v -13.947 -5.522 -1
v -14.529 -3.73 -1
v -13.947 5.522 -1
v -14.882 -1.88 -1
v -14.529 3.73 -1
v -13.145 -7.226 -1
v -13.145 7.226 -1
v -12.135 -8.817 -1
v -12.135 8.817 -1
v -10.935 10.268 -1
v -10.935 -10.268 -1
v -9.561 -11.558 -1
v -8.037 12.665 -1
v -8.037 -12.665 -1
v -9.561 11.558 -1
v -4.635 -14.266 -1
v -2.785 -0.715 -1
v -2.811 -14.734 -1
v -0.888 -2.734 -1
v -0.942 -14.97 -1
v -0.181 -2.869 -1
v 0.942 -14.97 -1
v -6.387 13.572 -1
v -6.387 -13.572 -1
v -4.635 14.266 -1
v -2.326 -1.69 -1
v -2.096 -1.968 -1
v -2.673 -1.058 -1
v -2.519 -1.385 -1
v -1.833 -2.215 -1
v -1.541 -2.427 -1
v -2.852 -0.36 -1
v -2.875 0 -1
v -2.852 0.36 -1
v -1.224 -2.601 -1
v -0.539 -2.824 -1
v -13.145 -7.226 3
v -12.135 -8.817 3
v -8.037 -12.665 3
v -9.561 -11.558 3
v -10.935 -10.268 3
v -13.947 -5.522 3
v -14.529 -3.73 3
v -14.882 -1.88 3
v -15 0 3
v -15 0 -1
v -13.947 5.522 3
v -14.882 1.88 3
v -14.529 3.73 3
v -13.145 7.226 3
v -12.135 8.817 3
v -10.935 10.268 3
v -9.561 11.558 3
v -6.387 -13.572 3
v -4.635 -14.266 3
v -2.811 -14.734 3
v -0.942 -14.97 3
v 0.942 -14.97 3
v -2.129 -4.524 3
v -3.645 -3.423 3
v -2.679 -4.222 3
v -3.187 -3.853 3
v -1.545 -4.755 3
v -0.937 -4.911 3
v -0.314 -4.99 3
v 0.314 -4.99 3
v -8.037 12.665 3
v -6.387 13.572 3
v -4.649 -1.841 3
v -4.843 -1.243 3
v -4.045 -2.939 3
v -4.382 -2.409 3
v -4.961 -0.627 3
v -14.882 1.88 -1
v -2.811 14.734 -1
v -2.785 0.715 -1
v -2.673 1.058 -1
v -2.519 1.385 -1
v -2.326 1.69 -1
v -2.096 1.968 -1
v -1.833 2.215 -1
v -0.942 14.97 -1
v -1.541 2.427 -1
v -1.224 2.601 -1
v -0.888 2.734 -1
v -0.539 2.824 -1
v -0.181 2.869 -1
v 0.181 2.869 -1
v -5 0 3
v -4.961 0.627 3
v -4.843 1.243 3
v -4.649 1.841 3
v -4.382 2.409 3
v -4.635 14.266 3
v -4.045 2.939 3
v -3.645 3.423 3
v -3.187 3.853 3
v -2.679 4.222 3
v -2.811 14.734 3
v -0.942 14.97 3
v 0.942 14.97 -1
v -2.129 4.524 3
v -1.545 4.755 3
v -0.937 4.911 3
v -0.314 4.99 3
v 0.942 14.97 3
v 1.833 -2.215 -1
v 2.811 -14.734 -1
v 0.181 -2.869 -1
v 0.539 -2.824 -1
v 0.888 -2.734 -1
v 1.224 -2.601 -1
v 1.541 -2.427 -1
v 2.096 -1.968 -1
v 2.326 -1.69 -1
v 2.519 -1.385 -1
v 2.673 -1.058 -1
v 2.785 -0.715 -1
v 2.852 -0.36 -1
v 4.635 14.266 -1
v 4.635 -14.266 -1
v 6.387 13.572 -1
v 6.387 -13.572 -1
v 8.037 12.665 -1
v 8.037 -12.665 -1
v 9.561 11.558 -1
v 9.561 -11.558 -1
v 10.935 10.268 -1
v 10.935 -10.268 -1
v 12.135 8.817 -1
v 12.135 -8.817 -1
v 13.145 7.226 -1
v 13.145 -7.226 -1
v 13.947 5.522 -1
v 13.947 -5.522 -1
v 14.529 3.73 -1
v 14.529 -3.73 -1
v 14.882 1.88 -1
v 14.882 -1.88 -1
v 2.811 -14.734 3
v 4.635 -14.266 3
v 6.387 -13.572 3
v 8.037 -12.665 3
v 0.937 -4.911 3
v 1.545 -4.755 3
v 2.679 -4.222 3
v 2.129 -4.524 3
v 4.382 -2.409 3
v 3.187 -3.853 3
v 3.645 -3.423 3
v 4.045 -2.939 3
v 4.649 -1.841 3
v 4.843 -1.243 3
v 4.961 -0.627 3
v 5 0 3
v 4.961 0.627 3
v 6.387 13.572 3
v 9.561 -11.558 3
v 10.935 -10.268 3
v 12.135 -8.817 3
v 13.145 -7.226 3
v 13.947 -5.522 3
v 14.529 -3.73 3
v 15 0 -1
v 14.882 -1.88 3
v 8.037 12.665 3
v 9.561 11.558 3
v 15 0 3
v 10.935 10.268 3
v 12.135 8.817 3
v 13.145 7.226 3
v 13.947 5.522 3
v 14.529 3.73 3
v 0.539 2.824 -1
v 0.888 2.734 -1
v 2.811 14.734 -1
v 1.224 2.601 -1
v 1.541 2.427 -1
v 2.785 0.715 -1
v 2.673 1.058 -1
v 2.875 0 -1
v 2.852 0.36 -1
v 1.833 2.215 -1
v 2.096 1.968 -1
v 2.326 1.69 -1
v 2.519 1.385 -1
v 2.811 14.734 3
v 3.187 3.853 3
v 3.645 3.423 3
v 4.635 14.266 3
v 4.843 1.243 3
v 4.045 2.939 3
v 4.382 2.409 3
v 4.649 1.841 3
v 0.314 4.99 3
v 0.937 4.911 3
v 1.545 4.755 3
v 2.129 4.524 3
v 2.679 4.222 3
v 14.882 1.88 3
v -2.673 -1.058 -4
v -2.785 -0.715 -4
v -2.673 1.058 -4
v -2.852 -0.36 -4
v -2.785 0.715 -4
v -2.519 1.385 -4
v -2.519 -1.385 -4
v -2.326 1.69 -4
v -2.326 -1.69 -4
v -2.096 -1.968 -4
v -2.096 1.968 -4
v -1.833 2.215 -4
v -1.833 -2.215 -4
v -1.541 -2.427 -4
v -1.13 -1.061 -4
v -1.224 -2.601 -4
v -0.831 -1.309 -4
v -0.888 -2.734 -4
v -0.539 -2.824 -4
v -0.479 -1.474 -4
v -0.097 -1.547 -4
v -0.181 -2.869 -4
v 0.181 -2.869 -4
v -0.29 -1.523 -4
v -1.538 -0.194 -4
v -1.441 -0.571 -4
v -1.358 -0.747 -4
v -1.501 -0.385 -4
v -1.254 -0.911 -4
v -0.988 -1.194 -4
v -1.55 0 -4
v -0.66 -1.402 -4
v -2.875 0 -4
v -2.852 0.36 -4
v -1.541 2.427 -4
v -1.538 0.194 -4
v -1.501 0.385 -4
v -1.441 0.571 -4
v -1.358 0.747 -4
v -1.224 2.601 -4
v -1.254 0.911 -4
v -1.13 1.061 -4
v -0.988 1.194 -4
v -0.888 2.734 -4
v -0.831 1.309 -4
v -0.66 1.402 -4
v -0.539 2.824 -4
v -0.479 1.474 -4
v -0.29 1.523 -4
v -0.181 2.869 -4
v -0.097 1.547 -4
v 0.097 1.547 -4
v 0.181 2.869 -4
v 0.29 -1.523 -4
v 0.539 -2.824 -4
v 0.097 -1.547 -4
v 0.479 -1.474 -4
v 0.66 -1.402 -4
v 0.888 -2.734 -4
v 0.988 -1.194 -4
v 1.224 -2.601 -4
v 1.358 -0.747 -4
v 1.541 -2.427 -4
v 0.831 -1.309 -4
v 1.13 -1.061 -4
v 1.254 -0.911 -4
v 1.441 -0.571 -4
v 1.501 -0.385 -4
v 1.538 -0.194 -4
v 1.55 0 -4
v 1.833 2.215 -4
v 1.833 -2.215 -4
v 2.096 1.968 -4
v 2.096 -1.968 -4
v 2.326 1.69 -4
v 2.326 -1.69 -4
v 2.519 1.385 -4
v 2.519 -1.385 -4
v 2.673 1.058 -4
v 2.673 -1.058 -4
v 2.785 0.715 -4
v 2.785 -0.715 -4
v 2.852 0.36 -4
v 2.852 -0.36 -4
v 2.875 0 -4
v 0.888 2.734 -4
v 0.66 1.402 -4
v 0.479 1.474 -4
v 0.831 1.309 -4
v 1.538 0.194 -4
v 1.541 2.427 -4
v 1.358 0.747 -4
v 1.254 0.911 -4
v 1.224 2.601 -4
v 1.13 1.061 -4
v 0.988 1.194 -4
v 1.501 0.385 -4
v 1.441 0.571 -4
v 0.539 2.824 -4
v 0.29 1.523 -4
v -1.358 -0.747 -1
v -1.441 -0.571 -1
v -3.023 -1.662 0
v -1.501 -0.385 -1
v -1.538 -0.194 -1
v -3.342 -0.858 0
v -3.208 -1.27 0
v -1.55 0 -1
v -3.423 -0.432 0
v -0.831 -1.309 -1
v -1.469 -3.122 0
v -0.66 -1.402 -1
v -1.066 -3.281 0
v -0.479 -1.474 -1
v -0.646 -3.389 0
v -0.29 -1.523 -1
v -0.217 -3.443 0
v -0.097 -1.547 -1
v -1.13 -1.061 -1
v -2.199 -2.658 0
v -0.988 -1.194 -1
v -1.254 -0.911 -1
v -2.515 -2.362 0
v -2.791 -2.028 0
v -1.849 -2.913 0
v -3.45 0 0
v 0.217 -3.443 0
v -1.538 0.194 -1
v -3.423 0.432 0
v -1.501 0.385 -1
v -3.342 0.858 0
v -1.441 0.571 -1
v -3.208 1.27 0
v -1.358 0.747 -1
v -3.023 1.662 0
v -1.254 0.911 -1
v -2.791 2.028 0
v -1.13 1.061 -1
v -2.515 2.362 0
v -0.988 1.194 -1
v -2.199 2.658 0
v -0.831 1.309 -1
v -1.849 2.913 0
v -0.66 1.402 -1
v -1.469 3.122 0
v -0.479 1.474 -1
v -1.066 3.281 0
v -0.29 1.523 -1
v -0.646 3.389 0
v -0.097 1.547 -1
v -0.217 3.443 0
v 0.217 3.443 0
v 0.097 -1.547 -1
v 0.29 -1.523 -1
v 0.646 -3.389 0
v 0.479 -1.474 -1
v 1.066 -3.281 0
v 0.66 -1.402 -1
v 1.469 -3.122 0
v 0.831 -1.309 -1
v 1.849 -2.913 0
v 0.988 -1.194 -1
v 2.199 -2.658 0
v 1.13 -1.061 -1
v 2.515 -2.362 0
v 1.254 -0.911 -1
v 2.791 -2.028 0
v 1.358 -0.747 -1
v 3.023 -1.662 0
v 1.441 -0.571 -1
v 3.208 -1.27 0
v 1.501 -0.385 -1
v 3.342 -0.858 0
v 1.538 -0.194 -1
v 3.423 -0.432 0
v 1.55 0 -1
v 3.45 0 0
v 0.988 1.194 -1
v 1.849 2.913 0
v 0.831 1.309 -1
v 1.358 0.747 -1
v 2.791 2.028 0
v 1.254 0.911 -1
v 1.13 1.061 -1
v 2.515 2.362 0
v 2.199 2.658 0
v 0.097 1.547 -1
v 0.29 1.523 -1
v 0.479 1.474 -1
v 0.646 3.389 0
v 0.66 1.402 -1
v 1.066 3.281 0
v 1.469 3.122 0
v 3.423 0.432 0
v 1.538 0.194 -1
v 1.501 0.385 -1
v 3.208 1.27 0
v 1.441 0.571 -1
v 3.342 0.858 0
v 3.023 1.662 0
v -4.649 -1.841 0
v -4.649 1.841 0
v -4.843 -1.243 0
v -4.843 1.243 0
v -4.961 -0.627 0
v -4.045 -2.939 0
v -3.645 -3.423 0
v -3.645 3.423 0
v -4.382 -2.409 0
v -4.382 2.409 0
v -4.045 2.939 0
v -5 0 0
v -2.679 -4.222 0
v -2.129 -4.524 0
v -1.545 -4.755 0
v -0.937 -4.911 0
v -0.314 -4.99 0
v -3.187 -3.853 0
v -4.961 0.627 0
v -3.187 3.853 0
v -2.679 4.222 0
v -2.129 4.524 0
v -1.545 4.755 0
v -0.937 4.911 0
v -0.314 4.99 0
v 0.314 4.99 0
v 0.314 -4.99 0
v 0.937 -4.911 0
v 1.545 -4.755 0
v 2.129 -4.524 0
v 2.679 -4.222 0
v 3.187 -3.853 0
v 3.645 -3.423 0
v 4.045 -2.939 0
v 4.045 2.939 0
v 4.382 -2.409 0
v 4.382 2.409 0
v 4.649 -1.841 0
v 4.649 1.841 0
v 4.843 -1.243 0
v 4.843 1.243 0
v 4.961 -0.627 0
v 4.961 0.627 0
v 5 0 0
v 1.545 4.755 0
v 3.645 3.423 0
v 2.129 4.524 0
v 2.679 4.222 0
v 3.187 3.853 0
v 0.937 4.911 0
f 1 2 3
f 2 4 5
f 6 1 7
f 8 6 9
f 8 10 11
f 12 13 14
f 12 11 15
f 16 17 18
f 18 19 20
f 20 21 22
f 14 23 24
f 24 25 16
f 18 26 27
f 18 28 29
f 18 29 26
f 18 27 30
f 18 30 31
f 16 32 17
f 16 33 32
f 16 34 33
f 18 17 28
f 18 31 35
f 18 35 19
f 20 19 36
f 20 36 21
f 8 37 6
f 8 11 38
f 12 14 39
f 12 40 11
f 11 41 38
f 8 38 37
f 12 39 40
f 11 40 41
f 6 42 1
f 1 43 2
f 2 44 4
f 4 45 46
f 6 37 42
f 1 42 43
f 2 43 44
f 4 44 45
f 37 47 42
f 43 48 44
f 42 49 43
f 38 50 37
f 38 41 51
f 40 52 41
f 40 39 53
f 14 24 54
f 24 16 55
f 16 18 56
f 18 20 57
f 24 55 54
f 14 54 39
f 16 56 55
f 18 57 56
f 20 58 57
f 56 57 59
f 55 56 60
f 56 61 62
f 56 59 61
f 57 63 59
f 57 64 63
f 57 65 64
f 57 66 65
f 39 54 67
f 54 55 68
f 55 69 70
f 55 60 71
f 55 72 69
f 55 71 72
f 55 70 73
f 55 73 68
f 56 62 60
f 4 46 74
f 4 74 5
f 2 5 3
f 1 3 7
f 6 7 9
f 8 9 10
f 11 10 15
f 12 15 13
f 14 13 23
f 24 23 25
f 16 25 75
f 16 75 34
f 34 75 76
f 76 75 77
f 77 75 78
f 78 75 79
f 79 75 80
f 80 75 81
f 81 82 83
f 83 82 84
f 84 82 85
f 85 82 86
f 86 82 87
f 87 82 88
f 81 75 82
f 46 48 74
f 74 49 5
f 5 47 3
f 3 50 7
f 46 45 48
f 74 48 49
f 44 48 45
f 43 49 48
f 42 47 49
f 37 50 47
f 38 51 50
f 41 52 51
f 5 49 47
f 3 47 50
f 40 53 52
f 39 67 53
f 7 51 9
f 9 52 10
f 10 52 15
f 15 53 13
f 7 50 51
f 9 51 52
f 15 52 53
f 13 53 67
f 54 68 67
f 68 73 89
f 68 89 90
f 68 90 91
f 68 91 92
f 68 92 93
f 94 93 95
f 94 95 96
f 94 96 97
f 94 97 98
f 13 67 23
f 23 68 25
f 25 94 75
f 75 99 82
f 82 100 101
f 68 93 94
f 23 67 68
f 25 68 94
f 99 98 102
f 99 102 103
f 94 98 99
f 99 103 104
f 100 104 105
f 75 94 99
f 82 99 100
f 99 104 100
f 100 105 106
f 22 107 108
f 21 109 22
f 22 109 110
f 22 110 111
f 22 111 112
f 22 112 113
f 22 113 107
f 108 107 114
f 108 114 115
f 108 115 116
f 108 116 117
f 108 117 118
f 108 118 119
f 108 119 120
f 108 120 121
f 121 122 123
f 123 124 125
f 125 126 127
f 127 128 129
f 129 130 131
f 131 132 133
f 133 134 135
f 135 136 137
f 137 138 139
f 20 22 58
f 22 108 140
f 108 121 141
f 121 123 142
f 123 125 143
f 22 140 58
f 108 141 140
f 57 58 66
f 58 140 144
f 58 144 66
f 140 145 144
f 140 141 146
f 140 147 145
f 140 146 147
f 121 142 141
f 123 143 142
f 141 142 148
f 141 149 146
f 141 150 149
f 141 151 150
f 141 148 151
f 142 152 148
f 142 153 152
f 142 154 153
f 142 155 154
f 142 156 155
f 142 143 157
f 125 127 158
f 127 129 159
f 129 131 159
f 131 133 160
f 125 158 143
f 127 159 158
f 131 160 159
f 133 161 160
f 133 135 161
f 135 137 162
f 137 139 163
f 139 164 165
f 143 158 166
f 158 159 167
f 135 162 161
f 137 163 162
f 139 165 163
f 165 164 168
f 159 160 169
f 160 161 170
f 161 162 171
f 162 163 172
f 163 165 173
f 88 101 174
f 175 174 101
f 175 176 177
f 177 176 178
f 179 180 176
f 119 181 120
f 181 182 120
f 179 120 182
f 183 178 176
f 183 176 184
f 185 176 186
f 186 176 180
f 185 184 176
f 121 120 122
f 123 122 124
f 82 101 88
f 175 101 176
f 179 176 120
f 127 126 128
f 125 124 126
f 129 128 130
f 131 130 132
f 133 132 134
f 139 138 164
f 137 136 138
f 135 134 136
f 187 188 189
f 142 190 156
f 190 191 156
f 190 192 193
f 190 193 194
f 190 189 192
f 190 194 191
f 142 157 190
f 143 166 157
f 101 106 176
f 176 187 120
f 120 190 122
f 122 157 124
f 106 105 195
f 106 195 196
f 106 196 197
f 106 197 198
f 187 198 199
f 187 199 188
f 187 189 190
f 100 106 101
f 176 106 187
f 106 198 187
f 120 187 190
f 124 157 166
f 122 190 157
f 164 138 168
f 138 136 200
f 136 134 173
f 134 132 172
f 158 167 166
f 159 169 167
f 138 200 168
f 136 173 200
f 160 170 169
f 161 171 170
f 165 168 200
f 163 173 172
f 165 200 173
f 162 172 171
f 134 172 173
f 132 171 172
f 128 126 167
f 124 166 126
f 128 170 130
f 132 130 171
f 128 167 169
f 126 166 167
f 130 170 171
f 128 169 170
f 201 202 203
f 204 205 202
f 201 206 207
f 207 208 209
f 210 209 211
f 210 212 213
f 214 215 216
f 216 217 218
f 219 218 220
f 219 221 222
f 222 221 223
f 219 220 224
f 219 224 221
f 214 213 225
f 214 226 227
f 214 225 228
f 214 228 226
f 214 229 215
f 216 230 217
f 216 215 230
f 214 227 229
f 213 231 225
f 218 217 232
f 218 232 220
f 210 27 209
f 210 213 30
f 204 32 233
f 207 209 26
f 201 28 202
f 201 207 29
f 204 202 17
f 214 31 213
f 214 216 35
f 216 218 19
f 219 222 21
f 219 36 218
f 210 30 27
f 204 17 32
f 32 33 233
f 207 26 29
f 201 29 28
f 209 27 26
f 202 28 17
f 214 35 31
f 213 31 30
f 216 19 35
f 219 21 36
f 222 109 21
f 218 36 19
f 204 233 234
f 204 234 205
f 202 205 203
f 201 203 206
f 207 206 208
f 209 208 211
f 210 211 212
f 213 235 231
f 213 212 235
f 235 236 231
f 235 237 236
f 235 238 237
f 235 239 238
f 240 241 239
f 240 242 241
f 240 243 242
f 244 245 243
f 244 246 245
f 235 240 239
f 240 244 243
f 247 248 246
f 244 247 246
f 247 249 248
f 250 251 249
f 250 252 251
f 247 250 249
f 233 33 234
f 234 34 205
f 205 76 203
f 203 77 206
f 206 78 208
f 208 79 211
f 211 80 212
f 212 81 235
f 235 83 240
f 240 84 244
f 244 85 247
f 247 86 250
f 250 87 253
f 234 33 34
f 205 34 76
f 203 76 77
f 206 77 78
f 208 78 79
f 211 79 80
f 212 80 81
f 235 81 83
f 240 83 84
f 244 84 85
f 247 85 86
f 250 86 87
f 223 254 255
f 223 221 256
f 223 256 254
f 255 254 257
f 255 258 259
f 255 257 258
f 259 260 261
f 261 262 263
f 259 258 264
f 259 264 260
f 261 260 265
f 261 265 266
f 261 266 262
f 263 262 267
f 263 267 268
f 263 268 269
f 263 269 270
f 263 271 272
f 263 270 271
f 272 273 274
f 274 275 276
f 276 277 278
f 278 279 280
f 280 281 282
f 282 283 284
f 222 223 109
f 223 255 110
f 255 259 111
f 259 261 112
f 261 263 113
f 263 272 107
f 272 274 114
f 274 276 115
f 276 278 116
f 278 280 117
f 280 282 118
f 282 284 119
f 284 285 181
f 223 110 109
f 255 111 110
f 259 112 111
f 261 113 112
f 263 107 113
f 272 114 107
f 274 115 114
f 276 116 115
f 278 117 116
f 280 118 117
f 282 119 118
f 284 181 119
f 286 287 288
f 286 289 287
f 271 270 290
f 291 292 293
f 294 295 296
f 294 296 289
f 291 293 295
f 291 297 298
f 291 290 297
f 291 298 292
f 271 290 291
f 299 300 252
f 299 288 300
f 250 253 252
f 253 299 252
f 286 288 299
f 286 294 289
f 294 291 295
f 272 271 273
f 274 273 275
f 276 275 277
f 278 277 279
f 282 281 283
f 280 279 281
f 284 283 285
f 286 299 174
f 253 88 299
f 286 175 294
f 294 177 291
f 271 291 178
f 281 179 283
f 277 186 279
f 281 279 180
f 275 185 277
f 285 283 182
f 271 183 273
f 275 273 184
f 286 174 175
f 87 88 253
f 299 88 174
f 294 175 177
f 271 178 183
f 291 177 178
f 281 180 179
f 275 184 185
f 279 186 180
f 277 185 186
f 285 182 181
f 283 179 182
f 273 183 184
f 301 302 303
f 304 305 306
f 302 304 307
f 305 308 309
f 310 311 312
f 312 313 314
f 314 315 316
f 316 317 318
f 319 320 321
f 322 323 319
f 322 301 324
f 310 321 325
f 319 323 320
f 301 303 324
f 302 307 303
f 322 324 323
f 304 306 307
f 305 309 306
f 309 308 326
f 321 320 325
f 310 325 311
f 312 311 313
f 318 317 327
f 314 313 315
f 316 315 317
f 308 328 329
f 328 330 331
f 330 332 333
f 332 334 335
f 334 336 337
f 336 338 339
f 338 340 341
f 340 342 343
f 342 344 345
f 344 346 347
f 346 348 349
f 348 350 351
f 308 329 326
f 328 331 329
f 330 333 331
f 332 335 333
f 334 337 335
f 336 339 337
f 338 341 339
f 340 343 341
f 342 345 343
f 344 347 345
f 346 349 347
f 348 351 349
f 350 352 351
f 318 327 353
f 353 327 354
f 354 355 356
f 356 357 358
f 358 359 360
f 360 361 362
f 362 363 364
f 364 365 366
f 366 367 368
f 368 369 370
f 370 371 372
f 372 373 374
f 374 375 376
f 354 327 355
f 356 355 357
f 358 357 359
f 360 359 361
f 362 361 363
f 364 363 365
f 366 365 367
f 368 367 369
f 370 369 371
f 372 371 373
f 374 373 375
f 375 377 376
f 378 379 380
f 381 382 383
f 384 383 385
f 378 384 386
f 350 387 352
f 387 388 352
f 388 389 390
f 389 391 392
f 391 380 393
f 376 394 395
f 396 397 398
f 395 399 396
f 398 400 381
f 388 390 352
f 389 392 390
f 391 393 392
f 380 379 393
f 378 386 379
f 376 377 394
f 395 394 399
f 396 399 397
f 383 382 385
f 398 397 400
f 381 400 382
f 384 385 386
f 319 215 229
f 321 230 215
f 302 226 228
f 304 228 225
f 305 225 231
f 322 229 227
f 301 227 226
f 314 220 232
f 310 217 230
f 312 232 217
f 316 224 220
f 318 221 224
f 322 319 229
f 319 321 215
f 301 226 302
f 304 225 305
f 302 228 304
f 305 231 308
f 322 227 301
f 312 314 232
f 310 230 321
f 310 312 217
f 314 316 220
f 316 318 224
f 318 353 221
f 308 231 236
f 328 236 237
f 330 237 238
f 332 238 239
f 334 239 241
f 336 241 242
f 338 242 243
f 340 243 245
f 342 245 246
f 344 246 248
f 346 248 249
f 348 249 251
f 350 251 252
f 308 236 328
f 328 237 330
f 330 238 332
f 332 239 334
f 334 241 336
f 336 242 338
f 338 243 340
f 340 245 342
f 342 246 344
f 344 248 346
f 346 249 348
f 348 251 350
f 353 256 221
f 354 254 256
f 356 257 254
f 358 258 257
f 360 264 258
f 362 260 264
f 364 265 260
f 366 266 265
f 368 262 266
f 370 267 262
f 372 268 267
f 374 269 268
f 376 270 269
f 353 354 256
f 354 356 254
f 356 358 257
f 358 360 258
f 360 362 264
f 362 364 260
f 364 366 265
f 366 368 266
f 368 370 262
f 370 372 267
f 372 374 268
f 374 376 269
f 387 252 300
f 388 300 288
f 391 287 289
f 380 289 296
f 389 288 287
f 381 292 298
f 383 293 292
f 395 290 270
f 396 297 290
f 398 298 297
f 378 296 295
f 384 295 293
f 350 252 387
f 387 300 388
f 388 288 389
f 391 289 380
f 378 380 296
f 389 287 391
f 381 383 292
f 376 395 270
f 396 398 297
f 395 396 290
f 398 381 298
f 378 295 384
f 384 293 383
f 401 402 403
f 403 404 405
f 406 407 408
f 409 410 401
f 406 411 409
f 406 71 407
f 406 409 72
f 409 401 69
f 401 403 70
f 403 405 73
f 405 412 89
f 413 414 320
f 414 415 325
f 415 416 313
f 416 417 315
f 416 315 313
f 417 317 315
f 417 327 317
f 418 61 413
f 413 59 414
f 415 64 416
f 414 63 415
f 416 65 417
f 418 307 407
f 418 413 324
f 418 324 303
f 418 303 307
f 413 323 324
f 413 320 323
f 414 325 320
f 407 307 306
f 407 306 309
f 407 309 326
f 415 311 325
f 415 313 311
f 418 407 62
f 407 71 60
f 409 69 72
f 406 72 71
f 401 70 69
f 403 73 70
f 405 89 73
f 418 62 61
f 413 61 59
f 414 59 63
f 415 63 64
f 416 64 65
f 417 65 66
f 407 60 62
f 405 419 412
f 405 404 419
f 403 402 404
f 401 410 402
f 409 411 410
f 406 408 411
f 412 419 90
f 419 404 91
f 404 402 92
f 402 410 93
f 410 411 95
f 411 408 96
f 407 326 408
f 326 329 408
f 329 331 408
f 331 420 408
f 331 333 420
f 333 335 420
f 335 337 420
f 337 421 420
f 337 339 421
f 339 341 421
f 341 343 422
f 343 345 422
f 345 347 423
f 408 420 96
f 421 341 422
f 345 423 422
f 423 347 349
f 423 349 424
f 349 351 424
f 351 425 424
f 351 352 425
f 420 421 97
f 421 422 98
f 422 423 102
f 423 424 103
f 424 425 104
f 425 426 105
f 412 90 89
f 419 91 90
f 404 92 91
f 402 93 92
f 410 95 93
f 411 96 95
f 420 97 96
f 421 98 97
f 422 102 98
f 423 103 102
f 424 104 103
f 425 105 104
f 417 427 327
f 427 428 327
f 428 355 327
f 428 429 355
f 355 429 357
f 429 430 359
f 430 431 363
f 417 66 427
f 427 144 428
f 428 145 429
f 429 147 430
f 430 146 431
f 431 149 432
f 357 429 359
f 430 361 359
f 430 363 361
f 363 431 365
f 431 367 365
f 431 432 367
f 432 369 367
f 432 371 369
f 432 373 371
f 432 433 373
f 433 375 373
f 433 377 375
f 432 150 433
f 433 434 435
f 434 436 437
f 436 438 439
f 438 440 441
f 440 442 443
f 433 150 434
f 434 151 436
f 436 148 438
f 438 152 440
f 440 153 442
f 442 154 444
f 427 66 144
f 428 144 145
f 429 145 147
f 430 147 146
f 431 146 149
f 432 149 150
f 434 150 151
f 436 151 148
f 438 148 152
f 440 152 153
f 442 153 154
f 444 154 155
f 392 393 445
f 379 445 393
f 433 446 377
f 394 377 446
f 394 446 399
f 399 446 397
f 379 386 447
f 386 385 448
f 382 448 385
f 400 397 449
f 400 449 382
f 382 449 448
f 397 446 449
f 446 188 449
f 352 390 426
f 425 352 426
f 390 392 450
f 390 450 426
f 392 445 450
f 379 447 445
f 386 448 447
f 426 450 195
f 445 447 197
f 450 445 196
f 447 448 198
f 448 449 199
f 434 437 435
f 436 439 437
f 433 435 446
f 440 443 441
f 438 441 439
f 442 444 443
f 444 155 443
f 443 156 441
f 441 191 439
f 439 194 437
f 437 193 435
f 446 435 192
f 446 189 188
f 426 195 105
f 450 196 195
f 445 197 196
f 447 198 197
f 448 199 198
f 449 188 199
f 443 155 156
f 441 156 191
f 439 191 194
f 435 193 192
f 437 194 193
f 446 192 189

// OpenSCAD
$fn = 50;

difference() {
	union() {
		translate(v = [0, 0, -1.0]) {
			cylinder(h = 4.0, r = 15.0);
		}
		#translate(v = [0, 0, -4.0]) {
			cylinder(h = 4.0, r = 2.875);
		}
	}
	union() {
		translate(v = [0, 0, 0]) {
			rotate(a = [0, 0, 0]) {
				difference() {
					union() {
						translate(v = [0, 0, -4.0]) {
							cylinder(h = 4.0, r = 1.25);
						}
						translate(v = [0, 0, -1.0]) {
							cylinder(h = 1.0, r1 = 1.55, r2 = 3.45);
						}
						translate(v = [0, 0, -4.0]) {
							cylinder(h = 4.0, r = 1.55);
						}
						translate(v = [0, 0, -4.0]) {
							cylinder(h = 4.0, r = 1.25);
						}
					}
					union();
				}
			}
		}
		#cylinder(h = 3, r = 5.0);
	}
}
